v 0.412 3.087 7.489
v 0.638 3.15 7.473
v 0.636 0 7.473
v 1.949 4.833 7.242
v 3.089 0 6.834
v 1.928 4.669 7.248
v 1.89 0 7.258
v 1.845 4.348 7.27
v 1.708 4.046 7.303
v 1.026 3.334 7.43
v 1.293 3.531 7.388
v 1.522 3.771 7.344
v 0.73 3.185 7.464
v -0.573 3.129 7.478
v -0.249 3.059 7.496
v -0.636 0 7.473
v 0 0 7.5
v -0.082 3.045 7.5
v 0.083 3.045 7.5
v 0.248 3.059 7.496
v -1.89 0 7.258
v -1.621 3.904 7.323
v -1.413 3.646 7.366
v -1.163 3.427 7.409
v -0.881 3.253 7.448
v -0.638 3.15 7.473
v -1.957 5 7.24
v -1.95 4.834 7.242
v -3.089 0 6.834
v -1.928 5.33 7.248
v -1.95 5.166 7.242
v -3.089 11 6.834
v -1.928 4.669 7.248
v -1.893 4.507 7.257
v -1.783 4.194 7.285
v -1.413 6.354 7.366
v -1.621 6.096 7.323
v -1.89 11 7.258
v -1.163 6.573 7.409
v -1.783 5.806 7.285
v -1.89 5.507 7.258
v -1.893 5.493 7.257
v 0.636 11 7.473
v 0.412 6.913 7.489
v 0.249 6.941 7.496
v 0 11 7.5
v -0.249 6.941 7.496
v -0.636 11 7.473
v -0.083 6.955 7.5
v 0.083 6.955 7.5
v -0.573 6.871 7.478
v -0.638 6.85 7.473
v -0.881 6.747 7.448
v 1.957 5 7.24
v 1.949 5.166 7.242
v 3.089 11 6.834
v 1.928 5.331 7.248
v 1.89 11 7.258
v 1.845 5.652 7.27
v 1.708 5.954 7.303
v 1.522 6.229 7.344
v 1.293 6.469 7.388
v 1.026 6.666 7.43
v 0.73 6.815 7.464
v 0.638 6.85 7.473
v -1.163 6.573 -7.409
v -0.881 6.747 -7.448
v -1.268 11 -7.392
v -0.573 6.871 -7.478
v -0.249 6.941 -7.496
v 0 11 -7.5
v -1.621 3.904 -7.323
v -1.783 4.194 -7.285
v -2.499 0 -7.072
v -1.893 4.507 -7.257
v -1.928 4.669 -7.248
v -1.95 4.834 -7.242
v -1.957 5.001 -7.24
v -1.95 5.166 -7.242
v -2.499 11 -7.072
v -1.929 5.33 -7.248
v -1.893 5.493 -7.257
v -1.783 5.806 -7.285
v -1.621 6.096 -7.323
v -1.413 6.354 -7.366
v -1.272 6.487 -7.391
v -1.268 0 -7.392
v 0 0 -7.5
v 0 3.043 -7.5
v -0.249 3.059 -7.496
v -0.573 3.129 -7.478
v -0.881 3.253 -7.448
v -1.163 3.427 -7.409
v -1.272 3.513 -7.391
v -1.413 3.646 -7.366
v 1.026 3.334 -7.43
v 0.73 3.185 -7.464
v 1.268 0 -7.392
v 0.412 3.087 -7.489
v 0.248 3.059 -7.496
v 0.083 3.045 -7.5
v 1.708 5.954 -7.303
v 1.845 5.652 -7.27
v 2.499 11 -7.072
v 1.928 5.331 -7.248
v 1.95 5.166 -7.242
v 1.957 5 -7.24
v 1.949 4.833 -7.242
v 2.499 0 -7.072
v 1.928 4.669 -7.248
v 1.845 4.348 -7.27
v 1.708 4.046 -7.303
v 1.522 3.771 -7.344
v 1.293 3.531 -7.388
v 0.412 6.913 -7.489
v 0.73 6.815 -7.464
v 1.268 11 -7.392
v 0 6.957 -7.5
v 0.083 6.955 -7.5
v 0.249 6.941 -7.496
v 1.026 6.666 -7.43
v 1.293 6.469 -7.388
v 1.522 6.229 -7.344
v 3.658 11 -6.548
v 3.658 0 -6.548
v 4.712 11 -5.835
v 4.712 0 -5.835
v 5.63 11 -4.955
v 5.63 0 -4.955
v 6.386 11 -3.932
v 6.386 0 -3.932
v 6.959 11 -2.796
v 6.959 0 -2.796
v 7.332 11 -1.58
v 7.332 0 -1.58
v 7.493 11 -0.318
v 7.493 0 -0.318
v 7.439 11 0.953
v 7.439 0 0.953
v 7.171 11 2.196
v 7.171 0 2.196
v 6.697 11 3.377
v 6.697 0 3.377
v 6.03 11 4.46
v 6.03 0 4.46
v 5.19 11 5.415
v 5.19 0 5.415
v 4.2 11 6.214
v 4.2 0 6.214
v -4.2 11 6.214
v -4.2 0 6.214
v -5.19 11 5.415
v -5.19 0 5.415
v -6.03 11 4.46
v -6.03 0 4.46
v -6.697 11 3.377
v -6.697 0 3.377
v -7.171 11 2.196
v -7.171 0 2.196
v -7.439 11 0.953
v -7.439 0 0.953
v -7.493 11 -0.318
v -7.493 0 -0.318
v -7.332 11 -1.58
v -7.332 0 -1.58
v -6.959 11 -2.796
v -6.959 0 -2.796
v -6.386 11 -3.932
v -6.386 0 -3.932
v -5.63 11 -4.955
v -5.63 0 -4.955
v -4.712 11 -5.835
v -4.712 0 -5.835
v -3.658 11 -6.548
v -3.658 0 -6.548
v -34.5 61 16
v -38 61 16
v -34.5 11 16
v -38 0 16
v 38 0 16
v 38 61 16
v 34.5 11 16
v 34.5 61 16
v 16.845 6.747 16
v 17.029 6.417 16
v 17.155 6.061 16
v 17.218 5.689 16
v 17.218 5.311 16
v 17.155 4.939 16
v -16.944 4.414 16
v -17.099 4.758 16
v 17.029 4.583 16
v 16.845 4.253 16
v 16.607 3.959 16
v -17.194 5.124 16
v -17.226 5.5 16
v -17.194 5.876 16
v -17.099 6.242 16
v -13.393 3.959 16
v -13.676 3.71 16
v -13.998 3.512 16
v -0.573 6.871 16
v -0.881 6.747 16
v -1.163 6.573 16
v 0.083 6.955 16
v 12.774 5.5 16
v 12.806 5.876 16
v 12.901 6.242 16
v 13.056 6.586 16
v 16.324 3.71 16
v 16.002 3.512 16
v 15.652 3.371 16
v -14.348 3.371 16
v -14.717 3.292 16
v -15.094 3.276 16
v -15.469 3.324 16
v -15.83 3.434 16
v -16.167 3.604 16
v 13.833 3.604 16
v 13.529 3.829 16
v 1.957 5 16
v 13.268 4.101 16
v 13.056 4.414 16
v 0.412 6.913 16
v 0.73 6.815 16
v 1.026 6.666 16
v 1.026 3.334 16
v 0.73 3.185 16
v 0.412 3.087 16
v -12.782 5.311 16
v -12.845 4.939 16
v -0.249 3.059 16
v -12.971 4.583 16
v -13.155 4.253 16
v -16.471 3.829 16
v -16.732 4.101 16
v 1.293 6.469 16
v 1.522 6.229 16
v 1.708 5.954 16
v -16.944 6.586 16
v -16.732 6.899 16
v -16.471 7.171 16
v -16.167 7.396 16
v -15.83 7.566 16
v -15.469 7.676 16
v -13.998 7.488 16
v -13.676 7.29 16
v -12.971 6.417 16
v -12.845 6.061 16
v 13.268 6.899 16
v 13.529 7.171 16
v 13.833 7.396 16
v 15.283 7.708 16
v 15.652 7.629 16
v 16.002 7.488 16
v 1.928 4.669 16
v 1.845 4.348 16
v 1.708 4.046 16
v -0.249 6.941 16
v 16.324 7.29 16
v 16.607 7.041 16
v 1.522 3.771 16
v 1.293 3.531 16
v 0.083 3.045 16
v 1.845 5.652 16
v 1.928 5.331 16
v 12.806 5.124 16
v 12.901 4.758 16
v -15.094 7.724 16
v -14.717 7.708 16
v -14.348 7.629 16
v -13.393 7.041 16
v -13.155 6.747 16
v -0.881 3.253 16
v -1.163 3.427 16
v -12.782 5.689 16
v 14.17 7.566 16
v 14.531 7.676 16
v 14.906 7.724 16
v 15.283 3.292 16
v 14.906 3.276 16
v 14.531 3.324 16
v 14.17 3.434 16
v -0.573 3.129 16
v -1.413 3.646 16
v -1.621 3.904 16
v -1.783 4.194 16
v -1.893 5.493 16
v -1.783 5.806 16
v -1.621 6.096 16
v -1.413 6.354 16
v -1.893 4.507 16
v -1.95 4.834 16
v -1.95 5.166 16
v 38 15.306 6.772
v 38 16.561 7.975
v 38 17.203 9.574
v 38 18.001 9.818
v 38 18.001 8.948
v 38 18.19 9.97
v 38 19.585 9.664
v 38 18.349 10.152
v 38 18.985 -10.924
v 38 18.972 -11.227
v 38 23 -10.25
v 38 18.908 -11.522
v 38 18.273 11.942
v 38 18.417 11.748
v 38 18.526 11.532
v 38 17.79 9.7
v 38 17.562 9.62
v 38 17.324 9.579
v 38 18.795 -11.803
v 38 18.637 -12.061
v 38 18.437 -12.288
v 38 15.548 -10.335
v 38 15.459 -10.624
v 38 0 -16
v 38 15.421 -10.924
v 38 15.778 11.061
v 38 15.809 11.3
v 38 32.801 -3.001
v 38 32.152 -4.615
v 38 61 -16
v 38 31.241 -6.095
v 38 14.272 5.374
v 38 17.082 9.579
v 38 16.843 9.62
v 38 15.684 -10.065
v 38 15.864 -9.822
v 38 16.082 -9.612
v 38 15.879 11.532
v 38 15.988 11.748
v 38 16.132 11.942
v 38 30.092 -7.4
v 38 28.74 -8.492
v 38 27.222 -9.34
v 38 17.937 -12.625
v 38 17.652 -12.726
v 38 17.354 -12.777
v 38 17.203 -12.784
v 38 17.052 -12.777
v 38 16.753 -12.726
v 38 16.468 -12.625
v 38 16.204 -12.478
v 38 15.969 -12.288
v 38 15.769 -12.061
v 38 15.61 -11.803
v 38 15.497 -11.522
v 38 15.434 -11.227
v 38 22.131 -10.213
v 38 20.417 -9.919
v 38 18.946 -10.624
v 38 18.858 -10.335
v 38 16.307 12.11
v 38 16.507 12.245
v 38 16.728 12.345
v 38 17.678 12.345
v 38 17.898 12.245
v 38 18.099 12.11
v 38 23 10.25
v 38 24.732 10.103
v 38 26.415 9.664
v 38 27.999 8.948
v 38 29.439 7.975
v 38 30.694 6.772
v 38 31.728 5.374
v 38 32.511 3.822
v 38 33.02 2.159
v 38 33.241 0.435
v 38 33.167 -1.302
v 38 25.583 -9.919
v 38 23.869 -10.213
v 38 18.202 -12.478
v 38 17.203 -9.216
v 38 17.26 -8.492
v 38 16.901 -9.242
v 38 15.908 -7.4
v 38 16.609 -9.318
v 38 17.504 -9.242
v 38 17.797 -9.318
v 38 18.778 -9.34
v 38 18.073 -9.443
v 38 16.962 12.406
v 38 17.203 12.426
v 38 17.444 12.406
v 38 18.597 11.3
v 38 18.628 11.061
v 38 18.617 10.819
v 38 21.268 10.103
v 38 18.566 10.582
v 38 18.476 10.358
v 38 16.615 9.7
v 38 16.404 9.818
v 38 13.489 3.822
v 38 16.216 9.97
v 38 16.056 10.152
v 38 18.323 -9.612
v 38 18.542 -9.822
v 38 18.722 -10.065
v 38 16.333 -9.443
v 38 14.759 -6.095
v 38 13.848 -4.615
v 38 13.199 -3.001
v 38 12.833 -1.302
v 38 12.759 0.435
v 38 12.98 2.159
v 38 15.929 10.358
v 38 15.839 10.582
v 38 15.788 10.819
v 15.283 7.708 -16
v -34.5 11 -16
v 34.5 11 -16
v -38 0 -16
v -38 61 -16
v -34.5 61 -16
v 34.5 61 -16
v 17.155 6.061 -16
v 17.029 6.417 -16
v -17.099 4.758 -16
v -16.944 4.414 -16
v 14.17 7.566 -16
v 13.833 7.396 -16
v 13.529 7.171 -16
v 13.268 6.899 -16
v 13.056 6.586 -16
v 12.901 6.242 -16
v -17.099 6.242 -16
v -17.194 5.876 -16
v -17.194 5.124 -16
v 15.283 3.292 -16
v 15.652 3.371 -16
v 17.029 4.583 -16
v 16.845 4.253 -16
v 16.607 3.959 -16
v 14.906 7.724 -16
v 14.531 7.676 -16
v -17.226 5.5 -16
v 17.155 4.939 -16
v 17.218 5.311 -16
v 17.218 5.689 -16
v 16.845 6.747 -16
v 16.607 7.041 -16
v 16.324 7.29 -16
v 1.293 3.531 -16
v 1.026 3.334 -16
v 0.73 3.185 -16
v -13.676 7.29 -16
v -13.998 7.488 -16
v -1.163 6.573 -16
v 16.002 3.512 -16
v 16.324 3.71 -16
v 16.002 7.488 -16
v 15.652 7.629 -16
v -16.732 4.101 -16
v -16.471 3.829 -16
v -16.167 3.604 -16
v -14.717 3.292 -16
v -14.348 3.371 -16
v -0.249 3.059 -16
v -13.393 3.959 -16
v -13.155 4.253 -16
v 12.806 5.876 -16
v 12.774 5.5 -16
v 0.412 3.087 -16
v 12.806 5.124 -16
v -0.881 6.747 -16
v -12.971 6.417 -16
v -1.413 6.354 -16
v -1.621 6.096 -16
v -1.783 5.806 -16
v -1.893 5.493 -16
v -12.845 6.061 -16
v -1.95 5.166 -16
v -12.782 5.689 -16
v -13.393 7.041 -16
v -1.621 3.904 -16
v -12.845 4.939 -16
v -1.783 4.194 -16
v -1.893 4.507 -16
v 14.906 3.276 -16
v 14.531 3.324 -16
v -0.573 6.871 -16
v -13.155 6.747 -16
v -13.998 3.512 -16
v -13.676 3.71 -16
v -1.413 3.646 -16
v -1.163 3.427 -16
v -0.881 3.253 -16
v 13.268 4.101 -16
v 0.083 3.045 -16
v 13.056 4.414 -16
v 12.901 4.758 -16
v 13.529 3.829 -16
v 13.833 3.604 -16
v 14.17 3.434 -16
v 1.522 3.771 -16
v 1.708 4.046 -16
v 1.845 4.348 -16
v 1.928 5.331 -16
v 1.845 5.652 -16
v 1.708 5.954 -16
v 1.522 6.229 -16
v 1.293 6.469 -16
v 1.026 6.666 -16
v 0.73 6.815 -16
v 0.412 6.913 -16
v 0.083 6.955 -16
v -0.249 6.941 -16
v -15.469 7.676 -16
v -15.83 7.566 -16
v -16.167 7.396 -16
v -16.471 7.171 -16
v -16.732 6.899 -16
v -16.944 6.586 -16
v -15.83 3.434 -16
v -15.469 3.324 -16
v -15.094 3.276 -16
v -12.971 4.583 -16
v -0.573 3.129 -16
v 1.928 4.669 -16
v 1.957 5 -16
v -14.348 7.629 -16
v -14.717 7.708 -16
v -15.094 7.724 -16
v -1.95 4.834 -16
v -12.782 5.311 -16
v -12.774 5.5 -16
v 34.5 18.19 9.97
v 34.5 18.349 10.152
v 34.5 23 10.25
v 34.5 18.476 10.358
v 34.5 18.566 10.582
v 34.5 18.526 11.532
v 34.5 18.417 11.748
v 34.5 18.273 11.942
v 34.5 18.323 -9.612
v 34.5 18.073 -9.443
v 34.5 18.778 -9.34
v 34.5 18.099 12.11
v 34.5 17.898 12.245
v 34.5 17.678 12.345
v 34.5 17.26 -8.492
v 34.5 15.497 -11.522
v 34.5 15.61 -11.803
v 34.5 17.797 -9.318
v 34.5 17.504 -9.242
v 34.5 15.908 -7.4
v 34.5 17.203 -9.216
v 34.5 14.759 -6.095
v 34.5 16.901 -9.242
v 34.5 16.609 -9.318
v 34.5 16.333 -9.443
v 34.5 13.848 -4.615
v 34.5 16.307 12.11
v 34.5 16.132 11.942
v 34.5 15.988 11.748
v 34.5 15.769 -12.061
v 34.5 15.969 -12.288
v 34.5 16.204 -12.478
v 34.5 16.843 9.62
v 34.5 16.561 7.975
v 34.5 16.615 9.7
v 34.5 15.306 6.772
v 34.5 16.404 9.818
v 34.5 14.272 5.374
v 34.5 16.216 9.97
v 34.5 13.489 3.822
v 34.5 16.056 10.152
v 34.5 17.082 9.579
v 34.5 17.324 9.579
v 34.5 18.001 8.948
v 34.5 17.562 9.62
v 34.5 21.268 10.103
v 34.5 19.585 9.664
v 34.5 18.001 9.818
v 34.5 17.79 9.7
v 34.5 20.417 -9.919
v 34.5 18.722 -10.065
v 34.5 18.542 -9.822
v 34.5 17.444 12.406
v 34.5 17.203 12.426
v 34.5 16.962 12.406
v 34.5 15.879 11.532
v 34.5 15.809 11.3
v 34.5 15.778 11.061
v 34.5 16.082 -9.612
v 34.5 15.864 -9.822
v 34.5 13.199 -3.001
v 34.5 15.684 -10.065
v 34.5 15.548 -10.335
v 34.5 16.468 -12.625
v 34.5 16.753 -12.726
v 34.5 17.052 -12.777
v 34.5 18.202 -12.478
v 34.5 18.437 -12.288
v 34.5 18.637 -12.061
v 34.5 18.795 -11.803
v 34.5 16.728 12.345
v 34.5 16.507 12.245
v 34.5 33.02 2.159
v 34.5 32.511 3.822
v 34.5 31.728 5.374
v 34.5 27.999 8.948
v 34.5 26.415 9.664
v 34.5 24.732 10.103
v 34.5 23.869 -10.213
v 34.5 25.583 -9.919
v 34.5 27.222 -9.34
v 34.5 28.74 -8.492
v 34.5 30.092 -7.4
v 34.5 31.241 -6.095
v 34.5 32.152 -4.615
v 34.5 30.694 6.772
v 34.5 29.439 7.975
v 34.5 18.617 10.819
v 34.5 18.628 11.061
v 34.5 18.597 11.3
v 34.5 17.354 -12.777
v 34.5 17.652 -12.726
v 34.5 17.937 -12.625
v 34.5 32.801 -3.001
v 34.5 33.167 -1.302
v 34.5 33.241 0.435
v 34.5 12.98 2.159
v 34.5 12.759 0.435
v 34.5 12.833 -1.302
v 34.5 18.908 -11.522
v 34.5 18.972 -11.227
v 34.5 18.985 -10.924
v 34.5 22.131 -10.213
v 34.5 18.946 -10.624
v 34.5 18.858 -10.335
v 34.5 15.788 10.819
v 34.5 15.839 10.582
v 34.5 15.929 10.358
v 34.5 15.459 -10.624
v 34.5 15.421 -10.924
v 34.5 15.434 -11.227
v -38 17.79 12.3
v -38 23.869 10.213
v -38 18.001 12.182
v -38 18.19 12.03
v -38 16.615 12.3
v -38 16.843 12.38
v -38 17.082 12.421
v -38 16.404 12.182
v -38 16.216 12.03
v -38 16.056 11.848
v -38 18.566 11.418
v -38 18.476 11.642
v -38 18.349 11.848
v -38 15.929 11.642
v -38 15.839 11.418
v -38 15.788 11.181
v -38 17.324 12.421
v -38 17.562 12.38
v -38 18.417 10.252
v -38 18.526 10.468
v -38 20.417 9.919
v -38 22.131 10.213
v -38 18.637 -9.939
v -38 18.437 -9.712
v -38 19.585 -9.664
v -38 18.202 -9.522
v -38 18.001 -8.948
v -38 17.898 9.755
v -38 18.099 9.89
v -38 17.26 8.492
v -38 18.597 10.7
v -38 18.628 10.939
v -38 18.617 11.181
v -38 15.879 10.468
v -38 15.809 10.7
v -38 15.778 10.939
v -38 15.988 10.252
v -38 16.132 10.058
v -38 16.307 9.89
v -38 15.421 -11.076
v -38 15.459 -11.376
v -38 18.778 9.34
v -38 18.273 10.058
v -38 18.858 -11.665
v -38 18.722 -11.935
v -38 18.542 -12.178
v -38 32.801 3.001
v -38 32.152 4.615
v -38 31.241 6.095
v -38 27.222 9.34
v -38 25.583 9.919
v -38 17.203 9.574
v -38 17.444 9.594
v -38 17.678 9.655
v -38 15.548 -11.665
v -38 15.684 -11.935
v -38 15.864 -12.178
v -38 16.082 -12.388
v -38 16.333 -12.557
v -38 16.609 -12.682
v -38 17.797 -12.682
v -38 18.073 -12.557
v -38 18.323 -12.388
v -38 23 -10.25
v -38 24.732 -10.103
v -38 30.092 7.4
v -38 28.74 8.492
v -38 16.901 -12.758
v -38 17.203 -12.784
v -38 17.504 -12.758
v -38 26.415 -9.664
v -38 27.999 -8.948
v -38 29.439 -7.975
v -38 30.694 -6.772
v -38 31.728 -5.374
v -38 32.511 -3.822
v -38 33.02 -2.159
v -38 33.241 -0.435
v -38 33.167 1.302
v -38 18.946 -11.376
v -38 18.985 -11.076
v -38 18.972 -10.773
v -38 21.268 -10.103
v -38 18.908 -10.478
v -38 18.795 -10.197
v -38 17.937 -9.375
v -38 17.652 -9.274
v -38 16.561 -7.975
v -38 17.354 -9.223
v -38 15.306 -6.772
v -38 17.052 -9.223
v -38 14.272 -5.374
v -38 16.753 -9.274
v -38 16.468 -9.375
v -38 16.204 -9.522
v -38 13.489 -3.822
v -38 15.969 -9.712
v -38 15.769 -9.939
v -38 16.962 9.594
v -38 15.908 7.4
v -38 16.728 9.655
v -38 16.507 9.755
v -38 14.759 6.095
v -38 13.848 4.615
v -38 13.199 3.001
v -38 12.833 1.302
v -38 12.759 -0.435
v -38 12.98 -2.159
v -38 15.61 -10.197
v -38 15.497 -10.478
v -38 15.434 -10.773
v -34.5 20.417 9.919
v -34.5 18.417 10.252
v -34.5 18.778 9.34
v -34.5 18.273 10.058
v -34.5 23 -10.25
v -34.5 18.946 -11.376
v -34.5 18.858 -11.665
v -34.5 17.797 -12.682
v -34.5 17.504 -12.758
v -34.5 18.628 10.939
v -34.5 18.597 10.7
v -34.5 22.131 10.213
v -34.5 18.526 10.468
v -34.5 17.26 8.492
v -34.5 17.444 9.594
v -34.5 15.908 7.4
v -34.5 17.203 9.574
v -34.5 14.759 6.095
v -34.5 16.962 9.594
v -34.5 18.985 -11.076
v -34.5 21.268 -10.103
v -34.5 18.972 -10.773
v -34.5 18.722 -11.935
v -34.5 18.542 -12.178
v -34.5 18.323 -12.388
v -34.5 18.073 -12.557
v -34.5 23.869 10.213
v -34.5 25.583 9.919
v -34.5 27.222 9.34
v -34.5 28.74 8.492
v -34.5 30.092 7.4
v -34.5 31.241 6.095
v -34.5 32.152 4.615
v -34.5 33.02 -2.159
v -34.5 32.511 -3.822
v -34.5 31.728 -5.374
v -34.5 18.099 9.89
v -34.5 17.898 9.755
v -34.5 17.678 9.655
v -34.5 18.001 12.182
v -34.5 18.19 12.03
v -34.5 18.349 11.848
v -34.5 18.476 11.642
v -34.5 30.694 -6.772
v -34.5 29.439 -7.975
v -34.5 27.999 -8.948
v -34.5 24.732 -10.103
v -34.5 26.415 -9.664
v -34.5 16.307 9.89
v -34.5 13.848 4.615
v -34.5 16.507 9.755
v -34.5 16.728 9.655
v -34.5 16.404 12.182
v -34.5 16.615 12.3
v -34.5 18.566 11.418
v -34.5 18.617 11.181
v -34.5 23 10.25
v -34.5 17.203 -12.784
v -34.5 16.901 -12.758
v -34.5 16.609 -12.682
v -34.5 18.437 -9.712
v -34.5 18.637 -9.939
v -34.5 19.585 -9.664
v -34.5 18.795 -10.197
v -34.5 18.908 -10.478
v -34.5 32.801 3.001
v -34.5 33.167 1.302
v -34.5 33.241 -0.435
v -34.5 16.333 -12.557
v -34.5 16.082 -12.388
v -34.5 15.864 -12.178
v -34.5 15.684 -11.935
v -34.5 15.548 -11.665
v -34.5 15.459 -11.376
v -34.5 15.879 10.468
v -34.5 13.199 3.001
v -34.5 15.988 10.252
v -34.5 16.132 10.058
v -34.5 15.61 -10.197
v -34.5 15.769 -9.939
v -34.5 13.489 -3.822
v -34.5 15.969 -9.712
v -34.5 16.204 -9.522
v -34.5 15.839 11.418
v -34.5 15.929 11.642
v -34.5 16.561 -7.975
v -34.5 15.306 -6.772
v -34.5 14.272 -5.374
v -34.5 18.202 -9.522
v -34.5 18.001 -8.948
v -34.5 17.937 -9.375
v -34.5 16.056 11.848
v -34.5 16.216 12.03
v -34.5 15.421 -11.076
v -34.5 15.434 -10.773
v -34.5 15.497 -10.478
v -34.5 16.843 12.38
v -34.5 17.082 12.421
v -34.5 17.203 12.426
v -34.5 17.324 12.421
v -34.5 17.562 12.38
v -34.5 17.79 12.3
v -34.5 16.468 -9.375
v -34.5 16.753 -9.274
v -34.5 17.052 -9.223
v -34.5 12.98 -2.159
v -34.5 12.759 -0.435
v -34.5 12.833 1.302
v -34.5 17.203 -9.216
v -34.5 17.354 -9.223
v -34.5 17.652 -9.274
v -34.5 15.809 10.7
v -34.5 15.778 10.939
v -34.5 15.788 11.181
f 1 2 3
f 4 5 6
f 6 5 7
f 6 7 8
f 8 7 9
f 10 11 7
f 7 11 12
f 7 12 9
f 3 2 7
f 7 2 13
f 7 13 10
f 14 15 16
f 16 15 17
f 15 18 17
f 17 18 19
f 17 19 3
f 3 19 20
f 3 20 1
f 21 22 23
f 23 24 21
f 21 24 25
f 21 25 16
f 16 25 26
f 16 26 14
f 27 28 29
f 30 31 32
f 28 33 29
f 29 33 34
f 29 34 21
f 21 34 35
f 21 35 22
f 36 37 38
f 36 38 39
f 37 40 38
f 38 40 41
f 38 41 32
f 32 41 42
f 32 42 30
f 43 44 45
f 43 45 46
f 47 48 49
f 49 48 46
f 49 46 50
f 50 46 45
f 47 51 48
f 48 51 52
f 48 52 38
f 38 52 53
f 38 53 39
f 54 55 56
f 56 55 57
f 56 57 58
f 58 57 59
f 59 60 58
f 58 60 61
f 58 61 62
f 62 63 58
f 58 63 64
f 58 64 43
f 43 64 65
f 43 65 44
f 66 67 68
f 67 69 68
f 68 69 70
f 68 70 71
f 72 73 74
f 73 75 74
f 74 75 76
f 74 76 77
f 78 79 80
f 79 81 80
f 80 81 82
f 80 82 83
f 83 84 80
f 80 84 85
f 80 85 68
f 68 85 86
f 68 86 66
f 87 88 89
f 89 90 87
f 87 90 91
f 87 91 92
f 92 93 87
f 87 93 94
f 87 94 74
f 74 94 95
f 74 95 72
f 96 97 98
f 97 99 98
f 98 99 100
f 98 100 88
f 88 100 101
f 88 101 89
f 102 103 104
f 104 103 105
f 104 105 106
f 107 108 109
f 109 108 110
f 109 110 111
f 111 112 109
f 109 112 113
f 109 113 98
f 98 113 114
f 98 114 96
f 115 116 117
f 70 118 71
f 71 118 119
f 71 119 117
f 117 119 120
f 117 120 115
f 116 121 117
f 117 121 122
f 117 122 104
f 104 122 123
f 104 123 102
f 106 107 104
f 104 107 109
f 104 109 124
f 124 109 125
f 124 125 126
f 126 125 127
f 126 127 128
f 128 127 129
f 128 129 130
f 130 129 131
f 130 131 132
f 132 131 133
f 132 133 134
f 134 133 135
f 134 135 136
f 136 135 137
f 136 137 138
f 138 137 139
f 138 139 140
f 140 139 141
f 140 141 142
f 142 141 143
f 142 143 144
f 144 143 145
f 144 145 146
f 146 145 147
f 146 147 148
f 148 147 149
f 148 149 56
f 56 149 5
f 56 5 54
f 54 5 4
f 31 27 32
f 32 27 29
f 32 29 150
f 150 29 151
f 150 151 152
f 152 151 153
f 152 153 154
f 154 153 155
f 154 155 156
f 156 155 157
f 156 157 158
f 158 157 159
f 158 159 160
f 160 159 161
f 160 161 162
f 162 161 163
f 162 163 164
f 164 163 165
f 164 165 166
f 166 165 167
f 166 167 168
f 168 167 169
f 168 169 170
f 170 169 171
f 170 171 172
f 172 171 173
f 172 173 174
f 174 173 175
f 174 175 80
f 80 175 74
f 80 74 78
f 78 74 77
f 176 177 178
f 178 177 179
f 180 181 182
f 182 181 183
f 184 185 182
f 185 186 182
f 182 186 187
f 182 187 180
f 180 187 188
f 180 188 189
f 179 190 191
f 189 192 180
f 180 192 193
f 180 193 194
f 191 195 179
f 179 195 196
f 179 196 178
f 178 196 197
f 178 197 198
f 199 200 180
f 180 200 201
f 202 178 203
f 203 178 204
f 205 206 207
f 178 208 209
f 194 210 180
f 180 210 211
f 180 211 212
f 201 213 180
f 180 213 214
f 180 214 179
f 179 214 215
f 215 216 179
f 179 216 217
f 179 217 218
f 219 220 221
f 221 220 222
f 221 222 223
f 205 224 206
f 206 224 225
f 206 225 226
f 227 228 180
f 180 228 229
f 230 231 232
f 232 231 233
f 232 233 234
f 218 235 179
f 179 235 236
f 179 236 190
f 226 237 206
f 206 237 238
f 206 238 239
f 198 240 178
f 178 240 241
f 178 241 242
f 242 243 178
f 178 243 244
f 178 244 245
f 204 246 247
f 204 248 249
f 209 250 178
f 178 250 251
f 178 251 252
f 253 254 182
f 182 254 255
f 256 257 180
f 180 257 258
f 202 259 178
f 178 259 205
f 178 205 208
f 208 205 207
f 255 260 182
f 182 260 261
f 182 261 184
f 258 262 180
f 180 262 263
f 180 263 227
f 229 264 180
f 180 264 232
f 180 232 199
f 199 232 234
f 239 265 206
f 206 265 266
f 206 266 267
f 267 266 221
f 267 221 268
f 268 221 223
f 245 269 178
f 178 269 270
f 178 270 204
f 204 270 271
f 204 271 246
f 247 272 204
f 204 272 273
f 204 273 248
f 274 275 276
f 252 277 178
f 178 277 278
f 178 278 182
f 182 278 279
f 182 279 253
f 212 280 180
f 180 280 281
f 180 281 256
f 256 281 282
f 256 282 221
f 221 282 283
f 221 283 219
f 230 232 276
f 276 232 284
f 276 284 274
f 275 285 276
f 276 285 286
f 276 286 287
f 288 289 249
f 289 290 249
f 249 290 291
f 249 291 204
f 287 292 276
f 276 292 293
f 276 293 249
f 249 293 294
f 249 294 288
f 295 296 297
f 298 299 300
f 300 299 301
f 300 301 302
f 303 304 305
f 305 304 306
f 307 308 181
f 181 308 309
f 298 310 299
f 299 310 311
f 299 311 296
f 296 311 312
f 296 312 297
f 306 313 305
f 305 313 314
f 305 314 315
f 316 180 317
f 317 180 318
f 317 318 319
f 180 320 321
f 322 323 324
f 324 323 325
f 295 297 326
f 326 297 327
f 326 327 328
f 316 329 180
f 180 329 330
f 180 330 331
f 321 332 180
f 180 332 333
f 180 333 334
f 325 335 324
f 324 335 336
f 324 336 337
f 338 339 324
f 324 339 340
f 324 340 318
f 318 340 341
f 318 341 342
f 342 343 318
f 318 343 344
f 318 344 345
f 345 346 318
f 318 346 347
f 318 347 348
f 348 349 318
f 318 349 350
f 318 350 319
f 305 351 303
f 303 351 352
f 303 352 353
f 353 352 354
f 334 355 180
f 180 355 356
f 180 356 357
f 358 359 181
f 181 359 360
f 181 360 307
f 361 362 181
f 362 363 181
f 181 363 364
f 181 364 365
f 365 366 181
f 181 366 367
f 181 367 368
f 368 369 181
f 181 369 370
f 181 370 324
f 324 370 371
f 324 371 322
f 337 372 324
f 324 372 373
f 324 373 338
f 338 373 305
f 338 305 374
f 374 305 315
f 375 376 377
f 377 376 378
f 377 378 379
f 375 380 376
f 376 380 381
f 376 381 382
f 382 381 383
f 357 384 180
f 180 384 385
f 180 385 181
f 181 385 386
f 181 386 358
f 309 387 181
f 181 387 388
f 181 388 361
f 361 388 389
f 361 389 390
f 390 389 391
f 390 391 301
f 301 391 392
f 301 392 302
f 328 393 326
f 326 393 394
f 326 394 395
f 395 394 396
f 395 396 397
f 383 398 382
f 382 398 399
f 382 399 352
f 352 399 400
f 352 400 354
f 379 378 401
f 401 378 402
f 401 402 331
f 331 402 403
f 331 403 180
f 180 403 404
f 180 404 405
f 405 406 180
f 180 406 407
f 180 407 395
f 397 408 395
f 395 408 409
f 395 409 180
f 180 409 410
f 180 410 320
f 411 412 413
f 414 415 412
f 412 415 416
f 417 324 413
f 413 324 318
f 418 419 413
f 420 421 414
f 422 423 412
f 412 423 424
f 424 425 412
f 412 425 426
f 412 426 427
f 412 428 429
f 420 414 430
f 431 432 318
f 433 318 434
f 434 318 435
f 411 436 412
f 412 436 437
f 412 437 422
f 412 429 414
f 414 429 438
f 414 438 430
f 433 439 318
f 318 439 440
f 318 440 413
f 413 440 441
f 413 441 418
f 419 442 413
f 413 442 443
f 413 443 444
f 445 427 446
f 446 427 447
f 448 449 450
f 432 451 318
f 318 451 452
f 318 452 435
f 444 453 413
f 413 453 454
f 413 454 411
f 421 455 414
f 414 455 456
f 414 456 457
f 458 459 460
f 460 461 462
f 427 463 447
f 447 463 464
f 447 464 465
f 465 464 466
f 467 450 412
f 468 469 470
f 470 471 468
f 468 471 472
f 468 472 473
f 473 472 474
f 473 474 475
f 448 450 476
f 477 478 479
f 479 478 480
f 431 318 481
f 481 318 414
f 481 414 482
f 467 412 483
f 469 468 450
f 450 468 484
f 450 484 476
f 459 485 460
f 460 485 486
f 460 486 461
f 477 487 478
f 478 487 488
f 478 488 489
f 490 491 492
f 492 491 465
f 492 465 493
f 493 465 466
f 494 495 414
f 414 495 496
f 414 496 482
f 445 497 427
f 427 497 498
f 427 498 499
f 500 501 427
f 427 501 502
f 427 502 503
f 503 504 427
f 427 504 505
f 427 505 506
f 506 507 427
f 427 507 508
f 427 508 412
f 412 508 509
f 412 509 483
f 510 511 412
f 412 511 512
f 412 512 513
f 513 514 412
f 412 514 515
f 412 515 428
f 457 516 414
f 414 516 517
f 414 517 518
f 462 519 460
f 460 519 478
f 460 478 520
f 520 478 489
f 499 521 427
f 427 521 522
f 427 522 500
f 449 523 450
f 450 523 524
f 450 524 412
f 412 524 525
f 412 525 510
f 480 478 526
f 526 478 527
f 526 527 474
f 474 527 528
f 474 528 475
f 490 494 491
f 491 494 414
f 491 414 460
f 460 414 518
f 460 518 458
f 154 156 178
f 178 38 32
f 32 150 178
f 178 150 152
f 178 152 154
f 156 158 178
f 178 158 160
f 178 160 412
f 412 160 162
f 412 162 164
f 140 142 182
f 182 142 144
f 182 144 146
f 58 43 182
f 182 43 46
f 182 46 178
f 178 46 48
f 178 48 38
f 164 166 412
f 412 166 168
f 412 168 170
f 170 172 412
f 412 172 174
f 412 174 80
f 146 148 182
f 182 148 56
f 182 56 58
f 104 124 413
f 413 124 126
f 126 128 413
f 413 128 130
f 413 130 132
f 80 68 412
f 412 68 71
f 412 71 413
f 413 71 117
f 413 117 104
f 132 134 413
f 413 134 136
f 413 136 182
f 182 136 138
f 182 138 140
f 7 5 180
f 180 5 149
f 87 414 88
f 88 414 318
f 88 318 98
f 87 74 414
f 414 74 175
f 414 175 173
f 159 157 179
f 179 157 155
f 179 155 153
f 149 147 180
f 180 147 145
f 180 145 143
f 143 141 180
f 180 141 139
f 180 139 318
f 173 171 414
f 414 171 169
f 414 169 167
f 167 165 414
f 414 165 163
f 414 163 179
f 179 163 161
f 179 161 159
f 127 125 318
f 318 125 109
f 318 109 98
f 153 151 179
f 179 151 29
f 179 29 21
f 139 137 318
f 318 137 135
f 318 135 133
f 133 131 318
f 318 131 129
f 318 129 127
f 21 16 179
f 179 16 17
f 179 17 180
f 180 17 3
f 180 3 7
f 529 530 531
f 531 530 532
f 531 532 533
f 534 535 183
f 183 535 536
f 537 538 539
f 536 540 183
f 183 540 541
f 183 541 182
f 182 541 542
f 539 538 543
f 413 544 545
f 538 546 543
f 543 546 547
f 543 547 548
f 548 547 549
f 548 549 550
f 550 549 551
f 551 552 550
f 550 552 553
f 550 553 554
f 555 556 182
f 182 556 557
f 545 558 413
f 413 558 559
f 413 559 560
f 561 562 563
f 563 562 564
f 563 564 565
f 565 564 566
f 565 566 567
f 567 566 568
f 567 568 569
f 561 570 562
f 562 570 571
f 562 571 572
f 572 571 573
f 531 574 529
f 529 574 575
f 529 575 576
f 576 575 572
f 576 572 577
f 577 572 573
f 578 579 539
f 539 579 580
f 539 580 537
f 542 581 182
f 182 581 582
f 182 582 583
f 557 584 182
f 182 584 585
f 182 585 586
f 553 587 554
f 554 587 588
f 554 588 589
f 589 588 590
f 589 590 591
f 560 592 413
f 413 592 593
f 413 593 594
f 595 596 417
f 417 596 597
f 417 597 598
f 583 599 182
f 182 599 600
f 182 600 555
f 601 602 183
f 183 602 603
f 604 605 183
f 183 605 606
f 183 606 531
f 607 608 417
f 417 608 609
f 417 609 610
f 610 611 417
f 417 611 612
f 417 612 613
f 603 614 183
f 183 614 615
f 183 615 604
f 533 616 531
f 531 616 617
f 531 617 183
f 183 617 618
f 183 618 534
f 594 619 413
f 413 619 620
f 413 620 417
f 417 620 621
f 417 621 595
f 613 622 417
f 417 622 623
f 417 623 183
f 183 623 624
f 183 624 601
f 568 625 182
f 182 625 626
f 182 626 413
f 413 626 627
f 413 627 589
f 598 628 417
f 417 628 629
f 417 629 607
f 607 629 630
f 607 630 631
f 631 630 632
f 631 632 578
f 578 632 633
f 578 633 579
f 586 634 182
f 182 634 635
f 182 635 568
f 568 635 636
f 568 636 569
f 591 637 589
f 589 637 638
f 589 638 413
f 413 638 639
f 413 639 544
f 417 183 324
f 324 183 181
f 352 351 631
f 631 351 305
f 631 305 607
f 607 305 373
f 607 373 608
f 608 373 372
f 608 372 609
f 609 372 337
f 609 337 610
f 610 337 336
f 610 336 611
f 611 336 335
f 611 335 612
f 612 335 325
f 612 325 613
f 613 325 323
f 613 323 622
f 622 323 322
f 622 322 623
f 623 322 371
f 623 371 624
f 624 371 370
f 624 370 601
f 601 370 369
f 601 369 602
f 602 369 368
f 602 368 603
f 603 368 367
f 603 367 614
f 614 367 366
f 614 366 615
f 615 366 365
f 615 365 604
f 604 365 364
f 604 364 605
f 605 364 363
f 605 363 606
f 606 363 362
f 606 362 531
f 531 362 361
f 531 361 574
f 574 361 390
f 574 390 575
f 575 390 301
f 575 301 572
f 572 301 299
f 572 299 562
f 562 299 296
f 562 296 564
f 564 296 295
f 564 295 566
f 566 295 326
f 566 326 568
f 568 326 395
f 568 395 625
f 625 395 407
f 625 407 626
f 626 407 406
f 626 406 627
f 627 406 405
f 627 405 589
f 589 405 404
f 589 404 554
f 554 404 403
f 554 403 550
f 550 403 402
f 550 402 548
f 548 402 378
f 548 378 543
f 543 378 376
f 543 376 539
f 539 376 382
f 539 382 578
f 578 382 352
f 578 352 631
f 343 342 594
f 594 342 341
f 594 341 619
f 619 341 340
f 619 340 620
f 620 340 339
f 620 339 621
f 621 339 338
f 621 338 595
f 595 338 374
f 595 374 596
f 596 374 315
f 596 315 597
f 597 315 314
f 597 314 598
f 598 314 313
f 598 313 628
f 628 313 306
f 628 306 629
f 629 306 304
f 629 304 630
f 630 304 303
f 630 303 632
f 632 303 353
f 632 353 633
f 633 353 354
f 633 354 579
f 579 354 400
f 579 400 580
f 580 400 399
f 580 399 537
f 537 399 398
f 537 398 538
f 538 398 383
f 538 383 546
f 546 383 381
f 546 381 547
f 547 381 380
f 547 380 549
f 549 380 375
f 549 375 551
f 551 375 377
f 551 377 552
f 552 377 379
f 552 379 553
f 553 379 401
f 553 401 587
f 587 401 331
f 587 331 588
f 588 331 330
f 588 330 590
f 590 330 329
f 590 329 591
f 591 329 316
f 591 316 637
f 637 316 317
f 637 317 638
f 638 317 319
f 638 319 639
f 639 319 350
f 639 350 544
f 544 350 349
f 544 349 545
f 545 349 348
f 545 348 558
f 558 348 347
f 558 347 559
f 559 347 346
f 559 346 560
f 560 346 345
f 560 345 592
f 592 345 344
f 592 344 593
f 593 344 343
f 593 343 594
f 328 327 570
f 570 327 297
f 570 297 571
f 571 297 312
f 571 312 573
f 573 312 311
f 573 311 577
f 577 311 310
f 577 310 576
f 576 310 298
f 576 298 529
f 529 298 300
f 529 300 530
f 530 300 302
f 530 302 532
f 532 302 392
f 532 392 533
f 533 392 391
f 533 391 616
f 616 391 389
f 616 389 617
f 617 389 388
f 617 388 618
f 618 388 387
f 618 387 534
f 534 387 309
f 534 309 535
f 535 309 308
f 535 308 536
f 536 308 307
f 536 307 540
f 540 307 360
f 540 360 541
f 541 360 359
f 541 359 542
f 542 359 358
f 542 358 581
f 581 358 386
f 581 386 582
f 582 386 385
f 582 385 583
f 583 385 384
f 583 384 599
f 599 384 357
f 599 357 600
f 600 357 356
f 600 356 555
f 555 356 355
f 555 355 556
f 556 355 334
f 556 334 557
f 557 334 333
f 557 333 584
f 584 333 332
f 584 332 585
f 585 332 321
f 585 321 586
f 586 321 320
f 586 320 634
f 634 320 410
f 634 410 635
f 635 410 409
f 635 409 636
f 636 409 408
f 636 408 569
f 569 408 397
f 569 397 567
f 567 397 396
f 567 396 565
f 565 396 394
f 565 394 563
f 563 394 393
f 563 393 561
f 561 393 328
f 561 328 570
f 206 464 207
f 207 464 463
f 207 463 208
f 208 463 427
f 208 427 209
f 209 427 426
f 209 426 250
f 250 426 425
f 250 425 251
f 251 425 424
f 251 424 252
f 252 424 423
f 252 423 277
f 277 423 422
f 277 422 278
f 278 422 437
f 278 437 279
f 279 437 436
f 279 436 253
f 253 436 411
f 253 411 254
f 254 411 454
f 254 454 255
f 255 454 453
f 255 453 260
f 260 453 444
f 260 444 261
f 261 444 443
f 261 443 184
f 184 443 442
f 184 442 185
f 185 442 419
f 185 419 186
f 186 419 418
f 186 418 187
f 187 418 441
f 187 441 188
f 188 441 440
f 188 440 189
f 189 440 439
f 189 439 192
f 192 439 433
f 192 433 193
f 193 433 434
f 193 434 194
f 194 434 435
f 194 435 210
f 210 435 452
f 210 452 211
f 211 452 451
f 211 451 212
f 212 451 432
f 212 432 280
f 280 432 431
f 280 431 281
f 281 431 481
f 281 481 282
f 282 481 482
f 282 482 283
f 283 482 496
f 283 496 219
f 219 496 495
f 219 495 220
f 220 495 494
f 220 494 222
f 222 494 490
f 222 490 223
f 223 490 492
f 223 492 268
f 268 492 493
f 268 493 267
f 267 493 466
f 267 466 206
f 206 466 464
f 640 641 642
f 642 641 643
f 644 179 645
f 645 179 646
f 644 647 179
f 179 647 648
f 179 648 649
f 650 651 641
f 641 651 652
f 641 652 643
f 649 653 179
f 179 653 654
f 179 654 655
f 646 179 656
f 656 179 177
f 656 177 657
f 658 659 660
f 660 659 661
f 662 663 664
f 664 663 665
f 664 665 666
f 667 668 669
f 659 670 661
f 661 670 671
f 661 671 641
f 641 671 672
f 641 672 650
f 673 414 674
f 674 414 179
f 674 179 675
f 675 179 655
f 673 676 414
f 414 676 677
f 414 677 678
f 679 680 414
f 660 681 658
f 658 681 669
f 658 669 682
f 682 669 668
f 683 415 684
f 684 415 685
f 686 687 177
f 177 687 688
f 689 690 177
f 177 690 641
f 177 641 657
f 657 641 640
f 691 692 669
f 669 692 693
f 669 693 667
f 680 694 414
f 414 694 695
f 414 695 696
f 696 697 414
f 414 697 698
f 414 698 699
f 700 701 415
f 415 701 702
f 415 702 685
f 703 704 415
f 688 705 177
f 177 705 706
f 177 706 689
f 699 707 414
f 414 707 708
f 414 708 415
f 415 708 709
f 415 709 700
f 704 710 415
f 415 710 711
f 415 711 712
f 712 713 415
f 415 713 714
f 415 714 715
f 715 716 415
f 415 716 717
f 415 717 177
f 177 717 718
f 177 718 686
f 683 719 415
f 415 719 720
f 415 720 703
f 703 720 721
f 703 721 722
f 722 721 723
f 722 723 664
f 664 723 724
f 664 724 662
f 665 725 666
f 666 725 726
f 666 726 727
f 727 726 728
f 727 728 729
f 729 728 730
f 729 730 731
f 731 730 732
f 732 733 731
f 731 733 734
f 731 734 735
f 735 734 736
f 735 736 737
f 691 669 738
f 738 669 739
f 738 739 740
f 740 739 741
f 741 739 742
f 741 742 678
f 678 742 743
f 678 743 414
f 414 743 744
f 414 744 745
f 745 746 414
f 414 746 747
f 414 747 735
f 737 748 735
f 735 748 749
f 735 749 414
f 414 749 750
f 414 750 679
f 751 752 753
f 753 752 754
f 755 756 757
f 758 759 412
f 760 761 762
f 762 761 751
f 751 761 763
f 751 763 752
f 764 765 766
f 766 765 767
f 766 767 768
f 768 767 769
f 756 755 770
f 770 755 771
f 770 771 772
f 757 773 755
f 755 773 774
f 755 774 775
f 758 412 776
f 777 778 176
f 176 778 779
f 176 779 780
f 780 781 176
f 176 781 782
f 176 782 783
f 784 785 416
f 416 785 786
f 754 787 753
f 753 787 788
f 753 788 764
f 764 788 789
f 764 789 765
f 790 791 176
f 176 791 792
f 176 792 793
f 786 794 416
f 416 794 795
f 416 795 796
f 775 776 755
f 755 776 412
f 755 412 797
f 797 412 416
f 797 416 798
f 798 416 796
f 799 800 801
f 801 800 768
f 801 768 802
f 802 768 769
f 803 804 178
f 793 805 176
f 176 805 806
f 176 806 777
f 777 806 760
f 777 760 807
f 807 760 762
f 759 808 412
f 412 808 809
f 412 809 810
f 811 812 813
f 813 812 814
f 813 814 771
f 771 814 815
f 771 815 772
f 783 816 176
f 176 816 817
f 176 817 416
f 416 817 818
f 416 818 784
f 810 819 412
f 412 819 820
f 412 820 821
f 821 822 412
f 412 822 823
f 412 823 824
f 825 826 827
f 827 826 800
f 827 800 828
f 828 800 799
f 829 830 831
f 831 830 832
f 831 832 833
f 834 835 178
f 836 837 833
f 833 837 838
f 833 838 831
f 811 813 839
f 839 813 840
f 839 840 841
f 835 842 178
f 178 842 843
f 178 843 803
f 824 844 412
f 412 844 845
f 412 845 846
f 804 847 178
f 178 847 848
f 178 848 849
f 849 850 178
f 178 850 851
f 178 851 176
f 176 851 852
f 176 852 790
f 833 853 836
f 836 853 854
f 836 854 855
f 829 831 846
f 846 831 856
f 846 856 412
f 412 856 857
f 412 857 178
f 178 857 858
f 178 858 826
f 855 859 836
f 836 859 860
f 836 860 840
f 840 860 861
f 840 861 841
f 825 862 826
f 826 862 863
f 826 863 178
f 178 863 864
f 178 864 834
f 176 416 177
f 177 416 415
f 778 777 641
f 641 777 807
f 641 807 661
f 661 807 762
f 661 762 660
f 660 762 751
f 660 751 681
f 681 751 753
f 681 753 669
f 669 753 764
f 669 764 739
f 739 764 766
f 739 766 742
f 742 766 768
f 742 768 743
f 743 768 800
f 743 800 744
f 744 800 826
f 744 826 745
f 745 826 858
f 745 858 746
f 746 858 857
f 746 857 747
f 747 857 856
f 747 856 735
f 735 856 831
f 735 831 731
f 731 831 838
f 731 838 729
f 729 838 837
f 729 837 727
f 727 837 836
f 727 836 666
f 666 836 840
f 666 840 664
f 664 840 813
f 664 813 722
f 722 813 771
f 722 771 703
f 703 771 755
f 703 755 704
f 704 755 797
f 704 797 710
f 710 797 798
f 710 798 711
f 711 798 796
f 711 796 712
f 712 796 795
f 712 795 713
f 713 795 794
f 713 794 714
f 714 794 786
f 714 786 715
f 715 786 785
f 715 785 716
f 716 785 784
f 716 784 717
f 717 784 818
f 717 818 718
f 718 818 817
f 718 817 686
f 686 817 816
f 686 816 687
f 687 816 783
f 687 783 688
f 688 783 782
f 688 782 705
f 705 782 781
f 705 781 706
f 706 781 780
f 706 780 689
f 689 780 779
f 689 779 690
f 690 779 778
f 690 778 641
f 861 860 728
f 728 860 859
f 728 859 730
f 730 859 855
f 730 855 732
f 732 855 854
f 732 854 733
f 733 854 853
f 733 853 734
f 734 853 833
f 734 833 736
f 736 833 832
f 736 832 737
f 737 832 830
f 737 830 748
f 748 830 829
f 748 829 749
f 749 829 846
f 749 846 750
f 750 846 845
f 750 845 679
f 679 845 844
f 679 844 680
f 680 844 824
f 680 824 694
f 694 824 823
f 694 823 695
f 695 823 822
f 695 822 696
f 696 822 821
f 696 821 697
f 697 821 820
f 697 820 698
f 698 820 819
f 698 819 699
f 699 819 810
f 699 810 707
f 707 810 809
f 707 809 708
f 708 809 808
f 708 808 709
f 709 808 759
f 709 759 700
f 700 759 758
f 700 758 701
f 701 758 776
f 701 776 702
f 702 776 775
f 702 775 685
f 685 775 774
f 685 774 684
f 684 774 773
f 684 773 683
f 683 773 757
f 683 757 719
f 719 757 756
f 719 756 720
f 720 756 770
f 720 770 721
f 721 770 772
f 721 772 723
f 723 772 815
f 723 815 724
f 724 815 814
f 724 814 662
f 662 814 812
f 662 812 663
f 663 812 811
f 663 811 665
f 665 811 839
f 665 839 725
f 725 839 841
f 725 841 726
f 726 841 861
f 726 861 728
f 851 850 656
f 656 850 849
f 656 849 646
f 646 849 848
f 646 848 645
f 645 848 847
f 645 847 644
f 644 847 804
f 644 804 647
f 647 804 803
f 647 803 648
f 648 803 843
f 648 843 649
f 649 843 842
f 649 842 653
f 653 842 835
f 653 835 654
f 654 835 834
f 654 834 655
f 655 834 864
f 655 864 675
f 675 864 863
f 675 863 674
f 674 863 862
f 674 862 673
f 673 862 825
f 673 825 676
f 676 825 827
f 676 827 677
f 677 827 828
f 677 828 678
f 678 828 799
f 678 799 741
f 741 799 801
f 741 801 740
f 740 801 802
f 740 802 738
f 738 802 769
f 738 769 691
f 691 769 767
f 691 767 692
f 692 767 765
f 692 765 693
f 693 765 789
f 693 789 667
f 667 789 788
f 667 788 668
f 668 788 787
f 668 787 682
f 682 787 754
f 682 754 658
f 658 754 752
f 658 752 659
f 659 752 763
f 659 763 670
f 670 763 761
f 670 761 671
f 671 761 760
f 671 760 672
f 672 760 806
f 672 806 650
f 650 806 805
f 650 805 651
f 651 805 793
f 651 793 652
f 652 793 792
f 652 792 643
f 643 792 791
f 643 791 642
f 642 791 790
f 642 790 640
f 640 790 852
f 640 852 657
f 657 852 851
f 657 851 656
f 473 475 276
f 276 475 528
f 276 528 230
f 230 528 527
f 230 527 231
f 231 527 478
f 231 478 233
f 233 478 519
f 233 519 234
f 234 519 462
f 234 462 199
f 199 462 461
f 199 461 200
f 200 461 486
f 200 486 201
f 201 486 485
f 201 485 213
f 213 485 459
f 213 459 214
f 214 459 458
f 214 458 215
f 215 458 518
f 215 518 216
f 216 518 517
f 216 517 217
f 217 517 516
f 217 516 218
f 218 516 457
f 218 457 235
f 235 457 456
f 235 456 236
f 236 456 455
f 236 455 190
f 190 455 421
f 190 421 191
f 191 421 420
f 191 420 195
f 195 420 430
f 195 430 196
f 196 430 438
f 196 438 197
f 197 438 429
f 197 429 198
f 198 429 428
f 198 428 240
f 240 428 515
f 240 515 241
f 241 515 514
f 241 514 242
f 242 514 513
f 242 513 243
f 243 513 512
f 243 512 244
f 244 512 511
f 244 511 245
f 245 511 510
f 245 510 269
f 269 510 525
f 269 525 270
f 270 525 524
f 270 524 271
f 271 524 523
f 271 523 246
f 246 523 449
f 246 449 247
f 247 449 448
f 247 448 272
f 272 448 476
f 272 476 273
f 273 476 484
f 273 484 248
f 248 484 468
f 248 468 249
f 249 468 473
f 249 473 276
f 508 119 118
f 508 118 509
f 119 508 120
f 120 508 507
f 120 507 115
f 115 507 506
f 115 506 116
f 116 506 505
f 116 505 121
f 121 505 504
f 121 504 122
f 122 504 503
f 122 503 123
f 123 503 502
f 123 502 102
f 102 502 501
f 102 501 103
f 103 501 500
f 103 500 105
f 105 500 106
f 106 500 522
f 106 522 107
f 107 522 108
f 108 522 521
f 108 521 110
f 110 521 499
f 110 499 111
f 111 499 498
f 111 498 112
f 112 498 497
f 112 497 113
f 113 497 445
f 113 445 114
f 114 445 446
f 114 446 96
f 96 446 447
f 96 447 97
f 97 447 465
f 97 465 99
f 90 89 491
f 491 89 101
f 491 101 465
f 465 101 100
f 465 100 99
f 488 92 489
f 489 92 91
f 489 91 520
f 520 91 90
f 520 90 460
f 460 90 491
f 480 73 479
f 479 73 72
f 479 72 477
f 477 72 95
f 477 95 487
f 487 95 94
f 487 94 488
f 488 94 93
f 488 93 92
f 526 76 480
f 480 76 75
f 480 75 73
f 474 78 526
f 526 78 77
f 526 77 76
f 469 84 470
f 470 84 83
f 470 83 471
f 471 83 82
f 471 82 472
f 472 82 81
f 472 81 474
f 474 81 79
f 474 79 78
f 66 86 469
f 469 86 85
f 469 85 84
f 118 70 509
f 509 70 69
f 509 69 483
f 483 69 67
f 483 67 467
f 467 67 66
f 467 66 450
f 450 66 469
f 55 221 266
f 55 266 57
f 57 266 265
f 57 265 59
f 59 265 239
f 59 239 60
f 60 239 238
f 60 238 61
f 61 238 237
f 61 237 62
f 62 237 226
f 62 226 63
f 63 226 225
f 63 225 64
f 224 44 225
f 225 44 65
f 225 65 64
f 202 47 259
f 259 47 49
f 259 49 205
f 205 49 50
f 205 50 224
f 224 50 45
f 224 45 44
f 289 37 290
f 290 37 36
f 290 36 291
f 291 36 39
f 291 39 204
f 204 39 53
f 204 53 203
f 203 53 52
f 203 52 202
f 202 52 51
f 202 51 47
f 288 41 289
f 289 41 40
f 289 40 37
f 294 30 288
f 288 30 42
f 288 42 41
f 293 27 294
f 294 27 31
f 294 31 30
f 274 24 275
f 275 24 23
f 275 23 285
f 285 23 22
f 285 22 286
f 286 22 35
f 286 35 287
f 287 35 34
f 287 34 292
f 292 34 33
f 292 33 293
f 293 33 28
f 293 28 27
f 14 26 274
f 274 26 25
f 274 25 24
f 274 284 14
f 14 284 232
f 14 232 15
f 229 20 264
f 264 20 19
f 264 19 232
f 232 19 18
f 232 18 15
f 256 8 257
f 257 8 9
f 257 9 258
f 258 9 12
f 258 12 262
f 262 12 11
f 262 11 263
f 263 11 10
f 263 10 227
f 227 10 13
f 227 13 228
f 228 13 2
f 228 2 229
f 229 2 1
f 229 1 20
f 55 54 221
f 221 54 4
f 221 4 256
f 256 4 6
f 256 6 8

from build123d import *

# Parameters (mm, degrees)
BOSS_EXTRUDE1_DEPTH = 11
SKETCH2_W           = 3.5
SKETCH2_H           = 32
BOSS_EXTRUDE2_DEPTH = 50
SKETCH3_R           = 10.25
SKETCH3_R_2         = 1.783609491
SKETCH3_R_3         = 1.426196869
CUT_EXTRUDE1_DEPTH  = 50
SKETCH4_R           = 2.22645949
CUT_EXTRUDE2_DEPTH  = 36
SKETCH5_R           = 1.95657882
CUT_EXTRUDE3_DEPTH  = 32


with BuildPart() as part:
    # Sketch1 → Boss-Extrude1 (new body)
    with BuildSketch(Plane(origin=(0, 0, 0), x_dir=(1, 0, 0), z_dir=(0, 1, 0))):
        with BuildLine():
            Line((38, 16), (0, 16))
            Line((0, 16), (0, 7.5))
            ThreePointArc((0, 7.5), (5.303300859, 5.303300859), (7.5, 0))
            ThreePointArc((7.5, 0), (5.303300859, -5.303300859), (0, -7.5))
            Line((0, -7.5), (0, -16))
            Line((0, -16), (38, -16))
            Line((38, -16), (38, 16))
        make_face()
    boss_extrude1 = extrude(amount=BOSS_EXTRUDE1_DEPTH)

    # Sketch2 → Boss-Extrude2 (add)
    with BuildSketch(Plane(origin=(0, 11, 0), x_dir=(1, 0, 0), z_dir=(0, 1, 0))):
        with Locations((36.25, 0)):
            Rectangle(SKETCH2_W, SKETCH2_H)
    boss_extrude2 = extrude(amount=BOSS_EXTRUDE2_DEPTH)

    # Sketch3 → Cut-Extrude1 (cut)
    with BuildSketch(Plane.ZY.offset(-34.5)):
        with Locations((0, 23)):
            Circle(SKETCH3_R)
        with Locations((-11, 17.202811543)):
            Circle(SKETCH3_R_2)
        with Locations((11, 17.202811543)):
            Circle(SKETCH3_R_3)
    cut_extrude1 = extrude(amount=-CUT_EXTRUDE1_DEPTH, mode=Mode.SUBTRACT)

    # Sketch4 → Cut-Extrude2 (cut)
    with BuildSketch(Plane(origin=(0, 0, -16), x_dir=(-1, 0, 0), z_dir=(0, 0, -1))):
        with Locations((-15, 5.5)):
            Circle(SKETCH4_R)
    cut_extrude2 = extrude(amount=-CUT_EXTRUDE2_DEPTH, mode=Mode.SUBTRACT)

    # Mirror1: Boss-Extrude1, Boss-Extrude2, Cut-Extrude1, Cut-Extrude2 across plane
    add(boss_extrude1.mirror(Plane(origin=(0, 11, 0), x_dir=(0, 0, 1), z_dir=(1, 0, 0))))
    add(boss_extrude2.mirror(Plane(origin=(0, 11, 0), x_dir=(0, 0, 1), z_dir=(1, 0, 0))))
    add(cut_extrude1.mirror(Plane(origin=(0, 11, 0), x_dir=(0, 0, 1), z_dir=(1, 0, 0))), mode=Mode.SUBTRACT)
    add(cut_extrude2.mirror(Plane(origin=(0, 11, 0), x_dir=(0, 0, 1), z_dir=(1, 0, 0))), mode=Mode.SUBTRACT)

    # Sketch5 → Cut-Extrude3 (cut)
    with BuildSketch(Plane.XY.offset(16)):
        with Locations((0, 5)):
            Circle(SKETCH5_R)
    extrude(amount=-CUT_EXTRUDE3_DEPTH, mode=Mode.SUBTRACT)


solid = part.part
